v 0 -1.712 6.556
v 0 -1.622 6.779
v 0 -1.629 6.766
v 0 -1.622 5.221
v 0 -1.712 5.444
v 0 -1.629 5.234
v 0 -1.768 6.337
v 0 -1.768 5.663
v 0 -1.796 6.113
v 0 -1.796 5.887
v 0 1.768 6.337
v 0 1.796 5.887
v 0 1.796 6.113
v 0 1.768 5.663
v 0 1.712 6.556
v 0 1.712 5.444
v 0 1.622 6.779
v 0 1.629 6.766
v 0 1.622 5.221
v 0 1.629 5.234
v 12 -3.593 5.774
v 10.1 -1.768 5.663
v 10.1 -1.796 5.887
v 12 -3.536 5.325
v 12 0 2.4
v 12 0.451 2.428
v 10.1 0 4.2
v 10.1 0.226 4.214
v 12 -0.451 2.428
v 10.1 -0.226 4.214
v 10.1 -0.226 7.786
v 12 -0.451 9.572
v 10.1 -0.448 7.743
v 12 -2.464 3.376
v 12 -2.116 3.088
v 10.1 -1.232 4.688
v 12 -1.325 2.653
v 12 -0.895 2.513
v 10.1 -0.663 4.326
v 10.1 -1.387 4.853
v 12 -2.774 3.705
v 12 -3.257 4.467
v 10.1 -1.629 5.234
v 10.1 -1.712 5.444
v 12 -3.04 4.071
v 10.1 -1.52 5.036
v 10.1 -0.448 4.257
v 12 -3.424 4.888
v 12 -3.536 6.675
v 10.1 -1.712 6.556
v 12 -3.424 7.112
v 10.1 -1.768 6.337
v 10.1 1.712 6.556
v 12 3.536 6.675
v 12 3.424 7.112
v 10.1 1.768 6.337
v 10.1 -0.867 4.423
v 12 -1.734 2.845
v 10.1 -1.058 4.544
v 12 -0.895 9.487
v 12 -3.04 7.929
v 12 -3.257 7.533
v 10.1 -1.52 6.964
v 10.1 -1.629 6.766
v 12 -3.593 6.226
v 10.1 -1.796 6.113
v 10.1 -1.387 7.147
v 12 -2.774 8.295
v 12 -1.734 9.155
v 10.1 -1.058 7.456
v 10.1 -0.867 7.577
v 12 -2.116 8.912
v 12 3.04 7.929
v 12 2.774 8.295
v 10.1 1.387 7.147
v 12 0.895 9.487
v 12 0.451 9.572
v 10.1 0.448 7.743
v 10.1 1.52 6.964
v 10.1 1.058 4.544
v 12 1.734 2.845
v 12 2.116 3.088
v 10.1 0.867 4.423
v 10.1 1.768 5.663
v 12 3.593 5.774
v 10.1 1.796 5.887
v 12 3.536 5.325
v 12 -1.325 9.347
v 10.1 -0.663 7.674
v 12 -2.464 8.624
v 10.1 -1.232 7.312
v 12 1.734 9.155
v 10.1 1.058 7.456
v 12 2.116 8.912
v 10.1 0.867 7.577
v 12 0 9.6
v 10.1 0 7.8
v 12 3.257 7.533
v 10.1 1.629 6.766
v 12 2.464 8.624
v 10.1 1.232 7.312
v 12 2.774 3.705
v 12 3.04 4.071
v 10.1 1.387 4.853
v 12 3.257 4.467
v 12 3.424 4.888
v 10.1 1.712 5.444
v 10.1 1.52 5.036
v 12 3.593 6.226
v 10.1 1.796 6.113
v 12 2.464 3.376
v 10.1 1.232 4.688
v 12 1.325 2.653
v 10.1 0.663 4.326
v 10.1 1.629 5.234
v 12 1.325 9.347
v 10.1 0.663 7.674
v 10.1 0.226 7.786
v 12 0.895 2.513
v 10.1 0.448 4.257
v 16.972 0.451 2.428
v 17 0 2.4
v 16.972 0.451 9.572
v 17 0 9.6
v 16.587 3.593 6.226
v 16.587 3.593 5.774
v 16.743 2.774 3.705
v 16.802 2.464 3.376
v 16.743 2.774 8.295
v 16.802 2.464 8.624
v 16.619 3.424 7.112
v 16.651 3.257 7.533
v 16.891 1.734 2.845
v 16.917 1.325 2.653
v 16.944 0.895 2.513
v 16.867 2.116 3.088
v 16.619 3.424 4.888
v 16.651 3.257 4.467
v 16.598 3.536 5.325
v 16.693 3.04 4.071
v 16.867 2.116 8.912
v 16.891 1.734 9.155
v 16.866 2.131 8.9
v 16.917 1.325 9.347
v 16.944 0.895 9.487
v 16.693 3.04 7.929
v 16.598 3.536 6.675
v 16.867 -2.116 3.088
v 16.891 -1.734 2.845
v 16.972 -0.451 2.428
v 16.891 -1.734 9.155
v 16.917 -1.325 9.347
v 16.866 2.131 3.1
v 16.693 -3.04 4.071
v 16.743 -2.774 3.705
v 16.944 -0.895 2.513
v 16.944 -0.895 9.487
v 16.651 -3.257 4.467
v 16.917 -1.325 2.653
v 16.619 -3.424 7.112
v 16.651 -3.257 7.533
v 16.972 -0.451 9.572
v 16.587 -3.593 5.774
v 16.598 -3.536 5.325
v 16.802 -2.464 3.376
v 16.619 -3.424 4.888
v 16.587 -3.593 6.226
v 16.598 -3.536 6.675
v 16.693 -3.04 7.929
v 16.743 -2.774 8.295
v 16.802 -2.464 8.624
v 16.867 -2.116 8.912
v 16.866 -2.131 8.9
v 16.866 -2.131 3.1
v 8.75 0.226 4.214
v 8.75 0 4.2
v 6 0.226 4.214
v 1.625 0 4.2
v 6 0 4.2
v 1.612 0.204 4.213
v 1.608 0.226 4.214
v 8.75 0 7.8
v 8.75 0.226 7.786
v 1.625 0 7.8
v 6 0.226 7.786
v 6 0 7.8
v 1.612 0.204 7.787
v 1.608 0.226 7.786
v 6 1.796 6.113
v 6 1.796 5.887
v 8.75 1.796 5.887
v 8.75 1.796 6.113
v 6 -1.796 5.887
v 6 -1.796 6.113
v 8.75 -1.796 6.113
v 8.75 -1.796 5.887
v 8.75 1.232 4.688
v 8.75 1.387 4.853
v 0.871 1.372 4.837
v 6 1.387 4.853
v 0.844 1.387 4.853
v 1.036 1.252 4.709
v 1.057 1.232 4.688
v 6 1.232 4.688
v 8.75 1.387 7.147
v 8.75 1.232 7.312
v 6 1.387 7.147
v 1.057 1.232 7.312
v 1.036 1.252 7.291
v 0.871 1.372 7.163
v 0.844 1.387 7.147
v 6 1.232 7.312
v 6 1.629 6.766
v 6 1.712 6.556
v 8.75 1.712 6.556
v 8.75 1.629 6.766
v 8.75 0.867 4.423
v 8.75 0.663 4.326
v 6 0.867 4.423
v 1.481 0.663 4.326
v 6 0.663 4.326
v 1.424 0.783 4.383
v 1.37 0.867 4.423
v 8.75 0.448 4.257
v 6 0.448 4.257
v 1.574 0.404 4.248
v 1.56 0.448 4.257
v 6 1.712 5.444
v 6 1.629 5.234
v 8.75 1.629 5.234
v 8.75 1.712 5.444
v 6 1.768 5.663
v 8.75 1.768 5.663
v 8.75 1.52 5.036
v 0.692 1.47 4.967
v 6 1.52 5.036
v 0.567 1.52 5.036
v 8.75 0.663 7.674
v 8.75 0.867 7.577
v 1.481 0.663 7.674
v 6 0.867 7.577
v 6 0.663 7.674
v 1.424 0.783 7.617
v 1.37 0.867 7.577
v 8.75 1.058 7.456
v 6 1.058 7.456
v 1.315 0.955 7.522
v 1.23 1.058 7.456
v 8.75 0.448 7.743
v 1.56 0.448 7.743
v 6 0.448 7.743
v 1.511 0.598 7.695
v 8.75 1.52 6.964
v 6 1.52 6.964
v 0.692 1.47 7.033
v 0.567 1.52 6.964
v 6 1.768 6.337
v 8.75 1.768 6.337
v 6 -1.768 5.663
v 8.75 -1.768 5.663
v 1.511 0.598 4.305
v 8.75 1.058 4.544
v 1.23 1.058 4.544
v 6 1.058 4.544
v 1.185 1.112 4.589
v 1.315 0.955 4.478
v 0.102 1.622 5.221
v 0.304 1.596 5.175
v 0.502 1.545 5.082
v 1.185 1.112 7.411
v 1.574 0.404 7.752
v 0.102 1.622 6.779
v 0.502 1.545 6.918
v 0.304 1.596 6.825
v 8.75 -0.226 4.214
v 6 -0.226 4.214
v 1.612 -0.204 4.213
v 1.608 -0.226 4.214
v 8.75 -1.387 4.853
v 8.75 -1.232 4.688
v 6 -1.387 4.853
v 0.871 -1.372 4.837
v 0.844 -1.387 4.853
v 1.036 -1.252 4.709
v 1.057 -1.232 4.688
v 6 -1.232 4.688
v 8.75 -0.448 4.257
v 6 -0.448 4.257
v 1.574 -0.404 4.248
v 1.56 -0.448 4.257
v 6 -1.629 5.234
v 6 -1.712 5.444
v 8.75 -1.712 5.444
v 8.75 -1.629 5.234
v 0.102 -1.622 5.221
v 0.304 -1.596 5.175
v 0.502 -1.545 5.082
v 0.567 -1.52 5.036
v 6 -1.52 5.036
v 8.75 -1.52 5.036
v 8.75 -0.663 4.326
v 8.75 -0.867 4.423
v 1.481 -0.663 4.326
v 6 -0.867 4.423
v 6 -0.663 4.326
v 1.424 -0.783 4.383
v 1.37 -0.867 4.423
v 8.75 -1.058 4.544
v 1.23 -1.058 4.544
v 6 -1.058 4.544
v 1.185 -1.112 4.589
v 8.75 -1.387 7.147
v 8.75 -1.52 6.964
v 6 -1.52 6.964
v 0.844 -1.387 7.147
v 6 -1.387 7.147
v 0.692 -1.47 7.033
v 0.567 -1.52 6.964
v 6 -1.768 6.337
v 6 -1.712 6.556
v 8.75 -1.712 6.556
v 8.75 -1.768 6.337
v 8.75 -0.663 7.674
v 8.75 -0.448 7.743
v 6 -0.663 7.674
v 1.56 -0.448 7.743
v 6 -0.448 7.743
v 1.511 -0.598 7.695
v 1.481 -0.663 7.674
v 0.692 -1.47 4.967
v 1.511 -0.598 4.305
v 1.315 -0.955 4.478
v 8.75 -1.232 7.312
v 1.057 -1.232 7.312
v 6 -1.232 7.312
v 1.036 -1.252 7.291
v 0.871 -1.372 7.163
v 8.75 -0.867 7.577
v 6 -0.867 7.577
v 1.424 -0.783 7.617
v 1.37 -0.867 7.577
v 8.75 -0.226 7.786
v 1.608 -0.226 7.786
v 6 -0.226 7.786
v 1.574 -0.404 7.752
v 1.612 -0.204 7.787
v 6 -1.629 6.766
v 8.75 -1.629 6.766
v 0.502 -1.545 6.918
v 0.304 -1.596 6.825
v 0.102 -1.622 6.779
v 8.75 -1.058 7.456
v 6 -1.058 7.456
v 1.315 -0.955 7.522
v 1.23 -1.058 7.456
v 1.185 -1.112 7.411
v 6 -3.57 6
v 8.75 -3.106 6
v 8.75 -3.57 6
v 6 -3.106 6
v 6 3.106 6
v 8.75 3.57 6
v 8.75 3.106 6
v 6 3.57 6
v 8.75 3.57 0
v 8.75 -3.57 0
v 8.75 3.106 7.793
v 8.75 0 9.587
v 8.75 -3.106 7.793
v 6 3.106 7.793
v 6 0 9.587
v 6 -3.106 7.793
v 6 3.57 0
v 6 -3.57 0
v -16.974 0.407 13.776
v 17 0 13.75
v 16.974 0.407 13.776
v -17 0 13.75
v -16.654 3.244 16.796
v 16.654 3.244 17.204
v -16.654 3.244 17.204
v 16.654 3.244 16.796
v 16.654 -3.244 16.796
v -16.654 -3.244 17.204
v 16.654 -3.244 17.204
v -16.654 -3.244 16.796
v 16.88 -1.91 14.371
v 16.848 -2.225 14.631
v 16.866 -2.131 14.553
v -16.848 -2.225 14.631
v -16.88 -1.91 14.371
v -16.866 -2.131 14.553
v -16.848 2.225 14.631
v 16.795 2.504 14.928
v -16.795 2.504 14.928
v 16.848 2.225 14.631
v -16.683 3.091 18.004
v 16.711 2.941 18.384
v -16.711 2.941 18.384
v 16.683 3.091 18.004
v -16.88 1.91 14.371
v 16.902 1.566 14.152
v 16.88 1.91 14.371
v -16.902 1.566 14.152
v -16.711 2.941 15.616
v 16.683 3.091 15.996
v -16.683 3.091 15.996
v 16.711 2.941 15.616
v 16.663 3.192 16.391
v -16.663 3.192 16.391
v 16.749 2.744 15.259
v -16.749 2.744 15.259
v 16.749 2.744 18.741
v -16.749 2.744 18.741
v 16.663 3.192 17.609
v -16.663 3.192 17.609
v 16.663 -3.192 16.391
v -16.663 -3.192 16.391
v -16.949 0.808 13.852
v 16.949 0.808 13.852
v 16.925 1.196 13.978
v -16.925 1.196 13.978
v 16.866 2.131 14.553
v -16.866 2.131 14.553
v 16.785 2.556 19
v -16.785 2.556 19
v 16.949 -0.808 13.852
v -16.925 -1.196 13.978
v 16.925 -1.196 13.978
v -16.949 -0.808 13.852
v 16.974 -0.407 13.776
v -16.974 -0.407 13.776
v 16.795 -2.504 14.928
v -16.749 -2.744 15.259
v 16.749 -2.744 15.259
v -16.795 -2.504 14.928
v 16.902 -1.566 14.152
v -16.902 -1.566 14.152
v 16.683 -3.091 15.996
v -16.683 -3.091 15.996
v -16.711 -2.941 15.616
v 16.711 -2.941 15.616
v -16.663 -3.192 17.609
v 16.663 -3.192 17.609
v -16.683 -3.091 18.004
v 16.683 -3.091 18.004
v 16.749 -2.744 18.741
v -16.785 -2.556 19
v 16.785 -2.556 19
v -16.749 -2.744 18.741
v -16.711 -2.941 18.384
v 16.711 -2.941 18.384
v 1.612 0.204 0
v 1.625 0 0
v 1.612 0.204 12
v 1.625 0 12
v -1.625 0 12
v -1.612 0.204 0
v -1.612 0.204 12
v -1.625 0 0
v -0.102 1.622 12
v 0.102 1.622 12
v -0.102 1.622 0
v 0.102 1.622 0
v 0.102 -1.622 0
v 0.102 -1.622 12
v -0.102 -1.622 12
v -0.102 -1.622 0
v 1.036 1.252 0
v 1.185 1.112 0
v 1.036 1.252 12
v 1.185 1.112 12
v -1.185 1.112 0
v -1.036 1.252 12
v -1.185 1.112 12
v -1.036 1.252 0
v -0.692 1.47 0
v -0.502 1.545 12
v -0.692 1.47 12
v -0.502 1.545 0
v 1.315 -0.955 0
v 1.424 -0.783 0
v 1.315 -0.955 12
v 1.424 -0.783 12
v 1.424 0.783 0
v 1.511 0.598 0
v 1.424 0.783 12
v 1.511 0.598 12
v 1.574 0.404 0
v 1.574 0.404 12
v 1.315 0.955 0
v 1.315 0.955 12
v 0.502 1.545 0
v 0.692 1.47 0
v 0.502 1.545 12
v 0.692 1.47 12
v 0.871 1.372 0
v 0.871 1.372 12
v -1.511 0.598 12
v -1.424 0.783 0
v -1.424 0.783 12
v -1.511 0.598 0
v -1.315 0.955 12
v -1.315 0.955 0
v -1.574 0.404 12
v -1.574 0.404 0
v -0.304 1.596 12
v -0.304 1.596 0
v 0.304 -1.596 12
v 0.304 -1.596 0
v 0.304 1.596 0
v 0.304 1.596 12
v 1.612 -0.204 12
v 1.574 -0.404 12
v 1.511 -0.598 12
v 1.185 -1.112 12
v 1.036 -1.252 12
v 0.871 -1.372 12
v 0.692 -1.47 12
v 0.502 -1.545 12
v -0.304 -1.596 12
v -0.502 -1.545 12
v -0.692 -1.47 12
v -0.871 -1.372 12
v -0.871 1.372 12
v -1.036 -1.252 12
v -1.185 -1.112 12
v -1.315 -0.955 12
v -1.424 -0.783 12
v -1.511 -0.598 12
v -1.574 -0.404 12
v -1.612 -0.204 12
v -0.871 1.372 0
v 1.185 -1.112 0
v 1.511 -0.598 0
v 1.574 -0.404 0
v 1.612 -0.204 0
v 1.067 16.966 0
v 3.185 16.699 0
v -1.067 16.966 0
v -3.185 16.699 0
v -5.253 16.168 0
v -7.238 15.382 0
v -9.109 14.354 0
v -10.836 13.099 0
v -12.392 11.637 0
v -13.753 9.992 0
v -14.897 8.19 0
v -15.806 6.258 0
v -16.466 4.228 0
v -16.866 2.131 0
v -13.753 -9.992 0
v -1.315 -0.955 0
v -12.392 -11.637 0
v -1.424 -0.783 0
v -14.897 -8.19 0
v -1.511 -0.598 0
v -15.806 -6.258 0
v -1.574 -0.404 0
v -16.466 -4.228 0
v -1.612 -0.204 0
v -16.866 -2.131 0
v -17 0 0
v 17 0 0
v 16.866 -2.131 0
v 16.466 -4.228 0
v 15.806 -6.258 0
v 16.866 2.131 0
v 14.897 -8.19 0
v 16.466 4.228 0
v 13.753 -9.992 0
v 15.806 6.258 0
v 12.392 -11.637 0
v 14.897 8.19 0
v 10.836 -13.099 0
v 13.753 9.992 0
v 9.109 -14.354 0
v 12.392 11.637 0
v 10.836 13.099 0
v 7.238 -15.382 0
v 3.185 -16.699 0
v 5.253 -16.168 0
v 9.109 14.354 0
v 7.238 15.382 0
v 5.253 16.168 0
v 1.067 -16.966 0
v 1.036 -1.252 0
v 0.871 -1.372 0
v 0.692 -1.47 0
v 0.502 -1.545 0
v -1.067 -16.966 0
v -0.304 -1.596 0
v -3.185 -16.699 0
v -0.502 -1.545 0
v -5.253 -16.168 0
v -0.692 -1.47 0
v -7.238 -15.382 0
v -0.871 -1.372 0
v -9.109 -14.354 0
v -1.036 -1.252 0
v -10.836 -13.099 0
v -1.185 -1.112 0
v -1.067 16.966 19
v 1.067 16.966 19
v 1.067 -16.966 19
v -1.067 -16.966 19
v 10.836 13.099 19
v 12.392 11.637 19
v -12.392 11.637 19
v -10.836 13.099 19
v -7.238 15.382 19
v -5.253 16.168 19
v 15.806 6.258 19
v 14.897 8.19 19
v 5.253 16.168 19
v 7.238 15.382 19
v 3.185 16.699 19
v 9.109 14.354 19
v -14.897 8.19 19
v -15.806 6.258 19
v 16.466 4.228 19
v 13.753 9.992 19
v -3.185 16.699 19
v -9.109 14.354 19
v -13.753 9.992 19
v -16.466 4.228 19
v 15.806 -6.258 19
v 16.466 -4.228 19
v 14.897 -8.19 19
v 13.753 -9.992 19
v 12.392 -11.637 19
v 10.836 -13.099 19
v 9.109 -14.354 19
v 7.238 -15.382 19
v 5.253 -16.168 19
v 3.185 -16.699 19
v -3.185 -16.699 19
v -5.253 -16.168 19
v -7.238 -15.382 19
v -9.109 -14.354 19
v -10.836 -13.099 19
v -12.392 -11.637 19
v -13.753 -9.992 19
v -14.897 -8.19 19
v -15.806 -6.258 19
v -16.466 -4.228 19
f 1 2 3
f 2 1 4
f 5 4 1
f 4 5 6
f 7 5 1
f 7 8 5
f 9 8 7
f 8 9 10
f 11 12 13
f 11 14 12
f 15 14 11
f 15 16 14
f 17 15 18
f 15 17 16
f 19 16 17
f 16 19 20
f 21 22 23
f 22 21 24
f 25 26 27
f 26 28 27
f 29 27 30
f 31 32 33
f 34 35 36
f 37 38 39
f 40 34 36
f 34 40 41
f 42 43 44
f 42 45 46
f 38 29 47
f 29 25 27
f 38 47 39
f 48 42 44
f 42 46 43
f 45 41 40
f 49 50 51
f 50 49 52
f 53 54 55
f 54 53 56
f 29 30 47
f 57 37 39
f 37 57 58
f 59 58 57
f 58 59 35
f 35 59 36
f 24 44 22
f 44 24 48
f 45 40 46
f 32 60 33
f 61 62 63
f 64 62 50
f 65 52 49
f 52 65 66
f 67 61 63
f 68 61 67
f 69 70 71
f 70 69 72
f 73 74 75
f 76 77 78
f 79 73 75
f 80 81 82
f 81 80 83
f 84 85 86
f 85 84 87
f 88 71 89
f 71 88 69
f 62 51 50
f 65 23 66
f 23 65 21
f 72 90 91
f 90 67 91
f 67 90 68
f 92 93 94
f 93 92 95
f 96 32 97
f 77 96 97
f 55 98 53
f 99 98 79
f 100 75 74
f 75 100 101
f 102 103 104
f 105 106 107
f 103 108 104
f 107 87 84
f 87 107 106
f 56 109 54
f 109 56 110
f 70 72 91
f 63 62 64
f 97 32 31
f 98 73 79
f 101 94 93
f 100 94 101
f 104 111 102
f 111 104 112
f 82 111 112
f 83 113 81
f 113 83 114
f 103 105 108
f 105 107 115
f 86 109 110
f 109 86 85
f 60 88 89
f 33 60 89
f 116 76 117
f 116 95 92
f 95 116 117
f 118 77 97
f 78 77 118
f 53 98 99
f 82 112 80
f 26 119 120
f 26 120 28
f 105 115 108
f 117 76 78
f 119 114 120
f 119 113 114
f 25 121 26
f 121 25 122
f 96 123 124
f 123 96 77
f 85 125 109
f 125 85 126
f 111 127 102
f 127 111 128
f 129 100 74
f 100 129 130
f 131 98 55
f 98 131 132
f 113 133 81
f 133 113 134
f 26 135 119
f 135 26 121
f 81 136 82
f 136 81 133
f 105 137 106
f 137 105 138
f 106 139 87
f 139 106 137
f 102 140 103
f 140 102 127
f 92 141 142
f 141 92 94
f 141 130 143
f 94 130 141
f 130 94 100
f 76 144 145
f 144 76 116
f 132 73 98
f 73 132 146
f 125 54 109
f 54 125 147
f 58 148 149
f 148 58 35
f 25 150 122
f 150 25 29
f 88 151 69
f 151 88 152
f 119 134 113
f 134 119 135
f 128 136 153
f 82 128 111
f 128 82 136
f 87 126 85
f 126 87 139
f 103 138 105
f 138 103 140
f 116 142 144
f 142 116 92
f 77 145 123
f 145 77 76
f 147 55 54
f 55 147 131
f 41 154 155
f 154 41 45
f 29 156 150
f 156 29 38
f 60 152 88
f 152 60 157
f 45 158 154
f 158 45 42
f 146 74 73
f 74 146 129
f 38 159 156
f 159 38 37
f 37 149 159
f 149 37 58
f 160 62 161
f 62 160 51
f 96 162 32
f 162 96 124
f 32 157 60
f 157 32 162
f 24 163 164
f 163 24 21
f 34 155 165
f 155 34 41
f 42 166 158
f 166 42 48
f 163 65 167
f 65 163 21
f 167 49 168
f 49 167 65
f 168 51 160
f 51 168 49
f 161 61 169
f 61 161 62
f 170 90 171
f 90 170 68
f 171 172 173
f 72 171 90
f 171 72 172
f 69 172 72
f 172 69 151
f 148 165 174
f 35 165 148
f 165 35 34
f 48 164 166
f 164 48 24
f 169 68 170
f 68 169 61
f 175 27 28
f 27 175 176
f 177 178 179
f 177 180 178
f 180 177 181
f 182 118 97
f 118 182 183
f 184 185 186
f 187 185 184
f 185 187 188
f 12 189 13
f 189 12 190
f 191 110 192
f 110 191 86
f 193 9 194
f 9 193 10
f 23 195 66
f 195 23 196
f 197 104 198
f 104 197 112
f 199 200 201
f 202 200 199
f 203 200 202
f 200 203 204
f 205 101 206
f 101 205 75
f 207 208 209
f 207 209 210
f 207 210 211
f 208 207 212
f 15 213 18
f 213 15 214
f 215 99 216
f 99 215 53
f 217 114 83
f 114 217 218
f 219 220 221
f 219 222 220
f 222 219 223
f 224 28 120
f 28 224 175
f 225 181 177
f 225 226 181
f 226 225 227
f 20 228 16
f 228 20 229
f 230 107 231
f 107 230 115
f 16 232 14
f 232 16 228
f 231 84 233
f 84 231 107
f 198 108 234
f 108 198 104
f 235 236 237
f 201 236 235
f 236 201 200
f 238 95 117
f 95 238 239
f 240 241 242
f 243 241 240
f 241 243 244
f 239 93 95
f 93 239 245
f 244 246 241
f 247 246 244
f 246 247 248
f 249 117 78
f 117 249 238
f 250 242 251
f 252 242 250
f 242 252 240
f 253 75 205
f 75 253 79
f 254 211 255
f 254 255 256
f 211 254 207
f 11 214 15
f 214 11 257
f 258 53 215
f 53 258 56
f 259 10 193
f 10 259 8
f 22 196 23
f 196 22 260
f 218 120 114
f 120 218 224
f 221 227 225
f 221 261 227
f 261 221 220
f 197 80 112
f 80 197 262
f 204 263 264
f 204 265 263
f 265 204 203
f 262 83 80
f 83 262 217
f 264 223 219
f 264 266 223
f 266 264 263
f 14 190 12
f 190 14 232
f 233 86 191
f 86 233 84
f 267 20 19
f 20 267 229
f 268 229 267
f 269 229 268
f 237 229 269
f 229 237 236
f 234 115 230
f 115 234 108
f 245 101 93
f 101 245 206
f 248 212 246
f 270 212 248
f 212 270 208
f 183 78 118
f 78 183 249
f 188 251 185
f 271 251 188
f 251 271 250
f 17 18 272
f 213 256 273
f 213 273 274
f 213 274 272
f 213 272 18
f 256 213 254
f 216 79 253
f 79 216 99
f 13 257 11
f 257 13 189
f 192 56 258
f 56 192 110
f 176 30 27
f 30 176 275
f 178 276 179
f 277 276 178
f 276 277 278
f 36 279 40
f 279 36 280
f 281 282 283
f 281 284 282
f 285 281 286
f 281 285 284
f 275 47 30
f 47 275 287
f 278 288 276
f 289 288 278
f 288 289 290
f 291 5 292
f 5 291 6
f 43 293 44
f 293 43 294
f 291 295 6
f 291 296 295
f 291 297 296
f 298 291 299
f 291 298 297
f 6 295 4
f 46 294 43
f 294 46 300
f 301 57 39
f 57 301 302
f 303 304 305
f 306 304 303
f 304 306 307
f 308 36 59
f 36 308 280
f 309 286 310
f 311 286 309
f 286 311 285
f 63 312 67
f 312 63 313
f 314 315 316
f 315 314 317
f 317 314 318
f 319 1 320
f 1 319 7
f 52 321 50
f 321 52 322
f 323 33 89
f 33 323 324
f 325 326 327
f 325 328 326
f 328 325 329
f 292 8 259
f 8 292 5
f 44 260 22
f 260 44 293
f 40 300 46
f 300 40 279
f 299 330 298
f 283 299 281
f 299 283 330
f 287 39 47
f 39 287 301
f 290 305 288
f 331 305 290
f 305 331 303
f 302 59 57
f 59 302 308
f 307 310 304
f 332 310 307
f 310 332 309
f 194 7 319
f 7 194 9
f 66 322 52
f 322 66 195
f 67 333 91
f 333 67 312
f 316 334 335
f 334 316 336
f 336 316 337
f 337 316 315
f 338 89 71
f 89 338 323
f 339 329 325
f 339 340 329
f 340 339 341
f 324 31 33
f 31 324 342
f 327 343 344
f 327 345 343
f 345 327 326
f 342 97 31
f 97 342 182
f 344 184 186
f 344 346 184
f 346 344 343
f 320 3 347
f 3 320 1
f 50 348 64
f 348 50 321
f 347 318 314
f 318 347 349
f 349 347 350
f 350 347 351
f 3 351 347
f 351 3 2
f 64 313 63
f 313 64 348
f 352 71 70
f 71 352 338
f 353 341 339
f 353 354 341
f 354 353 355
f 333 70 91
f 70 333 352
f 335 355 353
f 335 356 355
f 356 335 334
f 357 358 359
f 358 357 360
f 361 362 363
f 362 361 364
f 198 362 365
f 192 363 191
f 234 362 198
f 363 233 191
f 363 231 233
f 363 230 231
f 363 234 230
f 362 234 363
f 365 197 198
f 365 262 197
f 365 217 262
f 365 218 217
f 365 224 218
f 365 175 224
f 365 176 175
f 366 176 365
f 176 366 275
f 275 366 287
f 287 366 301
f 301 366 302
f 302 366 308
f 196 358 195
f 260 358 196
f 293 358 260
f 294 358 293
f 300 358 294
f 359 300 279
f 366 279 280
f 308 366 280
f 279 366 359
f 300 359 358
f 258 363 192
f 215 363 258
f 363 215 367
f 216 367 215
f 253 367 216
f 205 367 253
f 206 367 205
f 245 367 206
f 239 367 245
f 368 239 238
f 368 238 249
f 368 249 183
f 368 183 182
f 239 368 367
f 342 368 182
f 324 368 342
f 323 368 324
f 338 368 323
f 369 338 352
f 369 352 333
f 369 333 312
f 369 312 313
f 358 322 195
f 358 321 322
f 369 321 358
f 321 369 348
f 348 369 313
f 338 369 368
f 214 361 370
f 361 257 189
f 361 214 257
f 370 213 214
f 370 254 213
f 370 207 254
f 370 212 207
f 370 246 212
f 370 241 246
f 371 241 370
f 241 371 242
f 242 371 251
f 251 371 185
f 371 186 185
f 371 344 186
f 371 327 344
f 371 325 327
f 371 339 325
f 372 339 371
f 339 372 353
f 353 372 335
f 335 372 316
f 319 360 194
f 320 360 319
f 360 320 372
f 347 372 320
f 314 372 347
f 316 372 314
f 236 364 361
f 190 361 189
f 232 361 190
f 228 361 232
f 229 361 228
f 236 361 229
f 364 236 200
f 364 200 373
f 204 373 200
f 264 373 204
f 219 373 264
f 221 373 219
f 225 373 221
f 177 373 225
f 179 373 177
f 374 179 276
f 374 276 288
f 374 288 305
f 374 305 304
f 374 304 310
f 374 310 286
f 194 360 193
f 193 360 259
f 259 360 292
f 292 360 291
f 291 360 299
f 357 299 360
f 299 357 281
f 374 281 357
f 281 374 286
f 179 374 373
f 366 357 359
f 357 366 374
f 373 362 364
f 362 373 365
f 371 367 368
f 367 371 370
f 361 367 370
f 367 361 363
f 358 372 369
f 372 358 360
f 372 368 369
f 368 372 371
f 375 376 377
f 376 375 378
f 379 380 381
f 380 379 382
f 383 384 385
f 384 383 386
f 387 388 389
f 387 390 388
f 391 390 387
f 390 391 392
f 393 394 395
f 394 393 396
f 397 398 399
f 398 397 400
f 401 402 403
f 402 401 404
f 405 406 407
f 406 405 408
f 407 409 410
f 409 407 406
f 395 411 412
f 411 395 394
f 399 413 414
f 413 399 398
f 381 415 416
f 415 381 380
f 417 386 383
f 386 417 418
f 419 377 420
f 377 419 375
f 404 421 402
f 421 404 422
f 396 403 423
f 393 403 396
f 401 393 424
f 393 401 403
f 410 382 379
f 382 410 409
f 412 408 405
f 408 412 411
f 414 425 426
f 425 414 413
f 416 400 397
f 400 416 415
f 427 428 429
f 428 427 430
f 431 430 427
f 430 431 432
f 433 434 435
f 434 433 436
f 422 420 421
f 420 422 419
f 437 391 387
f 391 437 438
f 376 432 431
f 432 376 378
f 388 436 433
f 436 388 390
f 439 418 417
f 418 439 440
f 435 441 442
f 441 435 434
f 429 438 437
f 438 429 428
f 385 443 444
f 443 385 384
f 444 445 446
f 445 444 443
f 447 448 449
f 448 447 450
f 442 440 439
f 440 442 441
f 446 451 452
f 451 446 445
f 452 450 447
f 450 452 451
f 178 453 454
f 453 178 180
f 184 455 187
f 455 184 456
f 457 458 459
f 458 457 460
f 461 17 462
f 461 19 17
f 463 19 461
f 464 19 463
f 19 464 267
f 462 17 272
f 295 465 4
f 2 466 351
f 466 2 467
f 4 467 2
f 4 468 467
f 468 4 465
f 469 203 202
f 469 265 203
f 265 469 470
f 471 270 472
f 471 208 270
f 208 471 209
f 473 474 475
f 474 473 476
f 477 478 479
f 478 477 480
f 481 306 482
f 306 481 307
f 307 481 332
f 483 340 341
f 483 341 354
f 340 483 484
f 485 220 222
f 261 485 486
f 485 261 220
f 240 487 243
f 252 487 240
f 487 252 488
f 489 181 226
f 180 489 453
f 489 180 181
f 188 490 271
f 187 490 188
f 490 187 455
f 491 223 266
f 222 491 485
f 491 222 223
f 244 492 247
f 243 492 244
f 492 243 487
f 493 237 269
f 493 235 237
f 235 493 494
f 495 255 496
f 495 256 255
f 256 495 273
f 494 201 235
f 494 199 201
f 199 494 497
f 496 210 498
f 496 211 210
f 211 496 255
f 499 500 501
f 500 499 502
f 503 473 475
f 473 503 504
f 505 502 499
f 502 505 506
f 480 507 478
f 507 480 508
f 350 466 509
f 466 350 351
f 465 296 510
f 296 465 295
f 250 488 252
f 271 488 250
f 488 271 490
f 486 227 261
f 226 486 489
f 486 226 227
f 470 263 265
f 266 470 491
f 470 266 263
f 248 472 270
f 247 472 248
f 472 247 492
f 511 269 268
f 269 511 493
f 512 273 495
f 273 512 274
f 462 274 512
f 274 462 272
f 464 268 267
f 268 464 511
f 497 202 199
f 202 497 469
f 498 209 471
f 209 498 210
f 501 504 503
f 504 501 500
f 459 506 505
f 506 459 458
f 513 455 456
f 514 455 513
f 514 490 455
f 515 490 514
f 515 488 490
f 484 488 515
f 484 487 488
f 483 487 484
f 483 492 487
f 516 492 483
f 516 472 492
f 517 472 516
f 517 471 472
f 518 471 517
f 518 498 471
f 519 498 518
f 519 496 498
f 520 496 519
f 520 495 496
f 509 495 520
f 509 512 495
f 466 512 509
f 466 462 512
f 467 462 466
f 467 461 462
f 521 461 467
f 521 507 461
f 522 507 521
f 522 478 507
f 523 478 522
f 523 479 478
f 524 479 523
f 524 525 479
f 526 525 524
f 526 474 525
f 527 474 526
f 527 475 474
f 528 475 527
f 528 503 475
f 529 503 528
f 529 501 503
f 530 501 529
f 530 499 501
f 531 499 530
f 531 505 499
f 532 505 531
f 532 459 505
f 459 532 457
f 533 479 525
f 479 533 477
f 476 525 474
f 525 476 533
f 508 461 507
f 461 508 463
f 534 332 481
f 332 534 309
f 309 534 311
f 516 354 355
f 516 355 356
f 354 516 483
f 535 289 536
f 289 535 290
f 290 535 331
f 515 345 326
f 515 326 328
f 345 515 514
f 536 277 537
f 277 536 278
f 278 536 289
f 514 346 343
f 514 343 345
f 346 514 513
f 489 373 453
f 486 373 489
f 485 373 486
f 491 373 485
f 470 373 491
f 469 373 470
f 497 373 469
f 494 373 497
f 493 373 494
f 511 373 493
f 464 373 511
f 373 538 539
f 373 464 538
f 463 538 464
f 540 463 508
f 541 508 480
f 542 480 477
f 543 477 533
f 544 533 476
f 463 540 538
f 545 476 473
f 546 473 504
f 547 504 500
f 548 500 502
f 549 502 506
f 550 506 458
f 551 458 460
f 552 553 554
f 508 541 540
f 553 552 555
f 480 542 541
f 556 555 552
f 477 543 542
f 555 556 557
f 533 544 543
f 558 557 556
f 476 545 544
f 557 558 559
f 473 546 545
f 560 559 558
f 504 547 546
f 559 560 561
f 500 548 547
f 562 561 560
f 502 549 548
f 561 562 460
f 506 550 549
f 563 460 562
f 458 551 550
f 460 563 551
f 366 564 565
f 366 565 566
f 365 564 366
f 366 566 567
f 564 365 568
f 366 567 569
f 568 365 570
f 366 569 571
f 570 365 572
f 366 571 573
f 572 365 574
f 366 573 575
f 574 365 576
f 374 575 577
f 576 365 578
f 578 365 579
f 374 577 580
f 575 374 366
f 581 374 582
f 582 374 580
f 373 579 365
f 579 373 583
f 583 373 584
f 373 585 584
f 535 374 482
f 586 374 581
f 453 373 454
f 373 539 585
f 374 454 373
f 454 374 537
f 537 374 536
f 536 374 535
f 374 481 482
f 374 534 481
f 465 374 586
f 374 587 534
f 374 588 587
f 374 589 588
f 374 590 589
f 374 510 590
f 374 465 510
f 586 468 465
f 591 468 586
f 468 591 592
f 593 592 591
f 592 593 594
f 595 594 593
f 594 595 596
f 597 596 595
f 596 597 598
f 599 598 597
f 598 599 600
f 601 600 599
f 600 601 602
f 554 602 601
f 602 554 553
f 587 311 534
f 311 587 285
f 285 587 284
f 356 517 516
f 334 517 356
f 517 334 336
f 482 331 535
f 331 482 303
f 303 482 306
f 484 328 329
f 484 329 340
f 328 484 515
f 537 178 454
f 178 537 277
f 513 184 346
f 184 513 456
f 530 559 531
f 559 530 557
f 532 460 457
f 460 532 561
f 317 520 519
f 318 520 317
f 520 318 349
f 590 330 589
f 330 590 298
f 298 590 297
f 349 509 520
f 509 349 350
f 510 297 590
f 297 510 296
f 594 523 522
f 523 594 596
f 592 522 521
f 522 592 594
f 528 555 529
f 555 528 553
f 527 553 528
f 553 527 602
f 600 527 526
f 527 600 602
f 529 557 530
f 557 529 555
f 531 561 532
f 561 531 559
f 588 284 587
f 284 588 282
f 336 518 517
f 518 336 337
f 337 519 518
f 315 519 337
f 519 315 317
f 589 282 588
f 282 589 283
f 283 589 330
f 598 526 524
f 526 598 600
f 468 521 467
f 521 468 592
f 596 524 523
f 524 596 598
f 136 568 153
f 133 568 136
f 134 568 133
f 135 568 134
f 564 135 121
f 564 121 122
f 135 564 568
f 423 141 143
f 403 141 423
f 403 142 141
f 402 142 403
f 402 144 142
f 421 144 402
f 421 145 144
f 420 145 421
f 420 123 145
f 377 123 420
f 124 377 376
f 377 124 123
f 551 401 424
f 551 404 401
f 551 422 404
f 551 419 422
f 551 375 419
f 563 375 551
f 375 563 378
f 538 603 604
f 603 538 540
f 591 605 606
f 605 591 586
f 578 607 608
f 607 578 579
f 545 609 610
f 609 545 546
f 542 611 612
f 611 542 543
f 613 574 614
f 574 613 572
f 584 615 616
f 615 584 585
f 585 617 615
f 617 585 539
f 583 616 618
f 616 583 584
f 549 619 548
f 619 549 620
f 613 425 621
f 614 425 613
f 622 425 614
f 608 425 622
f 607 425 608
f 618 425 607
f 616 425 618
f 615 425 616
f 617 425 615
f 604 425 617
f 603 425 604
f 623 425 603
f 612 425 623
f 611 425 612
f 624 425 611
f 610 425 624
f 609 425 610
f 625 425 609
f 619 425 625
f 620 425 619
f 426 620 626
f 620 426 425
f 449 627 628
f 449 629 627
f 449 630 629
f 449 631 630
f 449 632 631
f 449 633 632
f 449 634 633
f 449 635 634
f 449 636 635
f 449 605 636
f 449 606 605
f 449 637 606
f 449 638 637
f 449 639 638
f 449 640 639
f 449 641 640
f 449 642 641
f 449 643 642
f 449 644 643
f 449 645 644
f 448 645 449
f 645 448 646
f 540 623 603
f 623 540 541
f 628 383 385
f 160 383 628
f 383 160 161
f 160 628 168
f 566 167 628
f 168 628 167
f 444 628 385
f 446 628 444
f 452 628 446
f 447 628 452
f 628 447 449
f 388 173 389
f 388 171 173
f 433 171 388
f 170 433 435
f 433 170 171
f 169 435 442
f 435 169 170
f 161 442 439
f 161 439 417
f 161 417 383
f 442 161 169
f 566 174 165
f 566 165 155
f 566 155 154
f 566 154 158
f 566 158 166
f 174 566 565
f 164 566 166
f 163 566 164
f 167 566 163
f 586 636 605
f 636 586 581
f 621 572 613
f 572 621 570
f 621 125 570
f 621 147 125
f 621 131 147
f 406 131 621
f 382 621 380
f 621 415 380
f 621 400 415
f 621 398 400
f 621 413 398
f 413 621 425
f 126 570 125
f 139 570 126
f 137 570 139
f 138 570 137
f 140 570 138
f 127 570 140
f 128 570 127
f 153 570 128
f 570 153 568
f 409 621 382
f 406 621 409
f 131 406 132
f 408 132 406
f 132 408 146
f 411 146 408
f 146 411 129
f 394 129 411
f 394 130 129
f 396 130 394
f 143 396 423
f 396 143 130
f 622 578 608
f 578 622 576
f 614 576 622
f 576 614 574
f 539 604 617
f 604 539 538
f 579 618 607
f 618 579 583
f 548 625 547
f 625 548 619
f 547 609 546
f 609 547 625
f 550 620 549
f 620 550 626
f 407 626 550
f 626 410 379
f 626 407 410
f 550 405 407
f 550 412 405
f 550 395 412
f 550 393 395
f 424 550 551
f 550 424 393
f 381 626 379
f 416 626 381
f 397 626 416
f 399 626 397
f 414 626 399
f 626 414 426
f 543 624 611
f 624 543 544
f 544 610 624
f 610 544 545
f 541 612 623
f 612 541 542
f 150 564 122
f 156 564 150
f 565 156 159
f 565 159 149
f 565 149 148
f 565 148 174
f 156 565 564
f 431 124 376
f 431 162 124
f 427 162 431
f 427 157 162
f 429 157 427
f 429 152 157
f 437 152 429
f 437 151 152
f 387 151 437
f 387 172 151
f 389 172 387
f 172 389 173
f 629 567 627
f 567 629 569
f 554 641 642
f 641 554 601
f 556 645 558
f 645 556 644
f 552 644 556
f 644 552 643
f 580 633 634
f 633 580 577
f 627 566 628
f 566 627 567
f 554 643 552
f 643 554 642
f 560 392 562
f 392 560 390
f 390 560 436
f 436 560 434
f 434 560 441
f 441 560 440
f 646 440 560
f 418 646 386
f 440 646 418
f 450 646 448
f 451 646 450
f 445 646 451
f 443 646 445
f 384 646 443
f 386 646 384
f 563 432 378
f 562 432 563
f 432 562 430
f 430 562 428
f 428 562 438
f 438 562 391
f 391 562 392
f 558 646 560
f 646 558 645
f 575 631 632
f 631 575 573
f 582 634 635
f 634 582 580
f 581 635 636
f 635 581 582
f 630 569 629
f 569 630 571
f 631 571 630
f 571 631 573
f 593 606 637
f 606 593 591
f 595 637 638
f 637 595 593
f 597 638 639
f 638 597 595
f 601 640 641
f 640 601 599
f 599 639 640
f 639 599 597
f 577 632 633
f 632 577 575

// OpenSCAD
$fn = 50;


difference() {
	union() {
		cylinder(h = 19, r = 17.0000000000);
	}
	union() {
		translate(v = [12, 0, 6.0000000000]) {
			rotate(a = [0, 90, 0]) {
				difference() {
					union() {
						translate(v = [0, 0, -12.0000000000]) {
							cylinder(h = 12, r = 1.5000000000);
						}
						translate(v = [0, 0, -1.9000000000]) {
							cylinder(h = 1.9000000000, r1 = 1.8000000000, r2 = 3.6000000000);
						}
						cylinder(h = 250, r = 3.6000000000);
						translate(v = [0, 0, -12.0000000000]) {
							cylinder(h = 12, r = 1.8000000000);
						}
						translate(v = [0, 0, -12.0000000000]) {
							cylinder(h = 12, r = 1.5000000000);
						}
					}
					union();
				}
			}
		}
		translate(v = [6.0000000000, 0, 6.0000000000]) {
			rotate(a = [0, 90, 0]) {
				difference() {
					union() {
						translate(v = [0.0000000000, -3.5702500000, 0]) {
							cube(size = [20, 7.1405000000, 2.7500000000]);
						}
						linear_extrude(height = 2.7500000000) {
							polygon(points = [[3.5870000000, 0.0000000000], [1.7935000000, 3.1064331234], [-1.7935000000, 3.1064331234], [-3.5870000000, 0.0000000000], [-1.7935000000, -3.1064331234], [1.7935000000, -3.1064331234]]);
						}
					}
					union();
				}
			}
		}
		#translate(v = [-100.0000000000, 0, 17.0000000000]) {
			rotate(a = [0, 90, 0]) {
				cylinder(h = 200, r = 3.2500000000);
			}
		}
		cylinder(h = 12, r = 1.6250000000);
	}
}
